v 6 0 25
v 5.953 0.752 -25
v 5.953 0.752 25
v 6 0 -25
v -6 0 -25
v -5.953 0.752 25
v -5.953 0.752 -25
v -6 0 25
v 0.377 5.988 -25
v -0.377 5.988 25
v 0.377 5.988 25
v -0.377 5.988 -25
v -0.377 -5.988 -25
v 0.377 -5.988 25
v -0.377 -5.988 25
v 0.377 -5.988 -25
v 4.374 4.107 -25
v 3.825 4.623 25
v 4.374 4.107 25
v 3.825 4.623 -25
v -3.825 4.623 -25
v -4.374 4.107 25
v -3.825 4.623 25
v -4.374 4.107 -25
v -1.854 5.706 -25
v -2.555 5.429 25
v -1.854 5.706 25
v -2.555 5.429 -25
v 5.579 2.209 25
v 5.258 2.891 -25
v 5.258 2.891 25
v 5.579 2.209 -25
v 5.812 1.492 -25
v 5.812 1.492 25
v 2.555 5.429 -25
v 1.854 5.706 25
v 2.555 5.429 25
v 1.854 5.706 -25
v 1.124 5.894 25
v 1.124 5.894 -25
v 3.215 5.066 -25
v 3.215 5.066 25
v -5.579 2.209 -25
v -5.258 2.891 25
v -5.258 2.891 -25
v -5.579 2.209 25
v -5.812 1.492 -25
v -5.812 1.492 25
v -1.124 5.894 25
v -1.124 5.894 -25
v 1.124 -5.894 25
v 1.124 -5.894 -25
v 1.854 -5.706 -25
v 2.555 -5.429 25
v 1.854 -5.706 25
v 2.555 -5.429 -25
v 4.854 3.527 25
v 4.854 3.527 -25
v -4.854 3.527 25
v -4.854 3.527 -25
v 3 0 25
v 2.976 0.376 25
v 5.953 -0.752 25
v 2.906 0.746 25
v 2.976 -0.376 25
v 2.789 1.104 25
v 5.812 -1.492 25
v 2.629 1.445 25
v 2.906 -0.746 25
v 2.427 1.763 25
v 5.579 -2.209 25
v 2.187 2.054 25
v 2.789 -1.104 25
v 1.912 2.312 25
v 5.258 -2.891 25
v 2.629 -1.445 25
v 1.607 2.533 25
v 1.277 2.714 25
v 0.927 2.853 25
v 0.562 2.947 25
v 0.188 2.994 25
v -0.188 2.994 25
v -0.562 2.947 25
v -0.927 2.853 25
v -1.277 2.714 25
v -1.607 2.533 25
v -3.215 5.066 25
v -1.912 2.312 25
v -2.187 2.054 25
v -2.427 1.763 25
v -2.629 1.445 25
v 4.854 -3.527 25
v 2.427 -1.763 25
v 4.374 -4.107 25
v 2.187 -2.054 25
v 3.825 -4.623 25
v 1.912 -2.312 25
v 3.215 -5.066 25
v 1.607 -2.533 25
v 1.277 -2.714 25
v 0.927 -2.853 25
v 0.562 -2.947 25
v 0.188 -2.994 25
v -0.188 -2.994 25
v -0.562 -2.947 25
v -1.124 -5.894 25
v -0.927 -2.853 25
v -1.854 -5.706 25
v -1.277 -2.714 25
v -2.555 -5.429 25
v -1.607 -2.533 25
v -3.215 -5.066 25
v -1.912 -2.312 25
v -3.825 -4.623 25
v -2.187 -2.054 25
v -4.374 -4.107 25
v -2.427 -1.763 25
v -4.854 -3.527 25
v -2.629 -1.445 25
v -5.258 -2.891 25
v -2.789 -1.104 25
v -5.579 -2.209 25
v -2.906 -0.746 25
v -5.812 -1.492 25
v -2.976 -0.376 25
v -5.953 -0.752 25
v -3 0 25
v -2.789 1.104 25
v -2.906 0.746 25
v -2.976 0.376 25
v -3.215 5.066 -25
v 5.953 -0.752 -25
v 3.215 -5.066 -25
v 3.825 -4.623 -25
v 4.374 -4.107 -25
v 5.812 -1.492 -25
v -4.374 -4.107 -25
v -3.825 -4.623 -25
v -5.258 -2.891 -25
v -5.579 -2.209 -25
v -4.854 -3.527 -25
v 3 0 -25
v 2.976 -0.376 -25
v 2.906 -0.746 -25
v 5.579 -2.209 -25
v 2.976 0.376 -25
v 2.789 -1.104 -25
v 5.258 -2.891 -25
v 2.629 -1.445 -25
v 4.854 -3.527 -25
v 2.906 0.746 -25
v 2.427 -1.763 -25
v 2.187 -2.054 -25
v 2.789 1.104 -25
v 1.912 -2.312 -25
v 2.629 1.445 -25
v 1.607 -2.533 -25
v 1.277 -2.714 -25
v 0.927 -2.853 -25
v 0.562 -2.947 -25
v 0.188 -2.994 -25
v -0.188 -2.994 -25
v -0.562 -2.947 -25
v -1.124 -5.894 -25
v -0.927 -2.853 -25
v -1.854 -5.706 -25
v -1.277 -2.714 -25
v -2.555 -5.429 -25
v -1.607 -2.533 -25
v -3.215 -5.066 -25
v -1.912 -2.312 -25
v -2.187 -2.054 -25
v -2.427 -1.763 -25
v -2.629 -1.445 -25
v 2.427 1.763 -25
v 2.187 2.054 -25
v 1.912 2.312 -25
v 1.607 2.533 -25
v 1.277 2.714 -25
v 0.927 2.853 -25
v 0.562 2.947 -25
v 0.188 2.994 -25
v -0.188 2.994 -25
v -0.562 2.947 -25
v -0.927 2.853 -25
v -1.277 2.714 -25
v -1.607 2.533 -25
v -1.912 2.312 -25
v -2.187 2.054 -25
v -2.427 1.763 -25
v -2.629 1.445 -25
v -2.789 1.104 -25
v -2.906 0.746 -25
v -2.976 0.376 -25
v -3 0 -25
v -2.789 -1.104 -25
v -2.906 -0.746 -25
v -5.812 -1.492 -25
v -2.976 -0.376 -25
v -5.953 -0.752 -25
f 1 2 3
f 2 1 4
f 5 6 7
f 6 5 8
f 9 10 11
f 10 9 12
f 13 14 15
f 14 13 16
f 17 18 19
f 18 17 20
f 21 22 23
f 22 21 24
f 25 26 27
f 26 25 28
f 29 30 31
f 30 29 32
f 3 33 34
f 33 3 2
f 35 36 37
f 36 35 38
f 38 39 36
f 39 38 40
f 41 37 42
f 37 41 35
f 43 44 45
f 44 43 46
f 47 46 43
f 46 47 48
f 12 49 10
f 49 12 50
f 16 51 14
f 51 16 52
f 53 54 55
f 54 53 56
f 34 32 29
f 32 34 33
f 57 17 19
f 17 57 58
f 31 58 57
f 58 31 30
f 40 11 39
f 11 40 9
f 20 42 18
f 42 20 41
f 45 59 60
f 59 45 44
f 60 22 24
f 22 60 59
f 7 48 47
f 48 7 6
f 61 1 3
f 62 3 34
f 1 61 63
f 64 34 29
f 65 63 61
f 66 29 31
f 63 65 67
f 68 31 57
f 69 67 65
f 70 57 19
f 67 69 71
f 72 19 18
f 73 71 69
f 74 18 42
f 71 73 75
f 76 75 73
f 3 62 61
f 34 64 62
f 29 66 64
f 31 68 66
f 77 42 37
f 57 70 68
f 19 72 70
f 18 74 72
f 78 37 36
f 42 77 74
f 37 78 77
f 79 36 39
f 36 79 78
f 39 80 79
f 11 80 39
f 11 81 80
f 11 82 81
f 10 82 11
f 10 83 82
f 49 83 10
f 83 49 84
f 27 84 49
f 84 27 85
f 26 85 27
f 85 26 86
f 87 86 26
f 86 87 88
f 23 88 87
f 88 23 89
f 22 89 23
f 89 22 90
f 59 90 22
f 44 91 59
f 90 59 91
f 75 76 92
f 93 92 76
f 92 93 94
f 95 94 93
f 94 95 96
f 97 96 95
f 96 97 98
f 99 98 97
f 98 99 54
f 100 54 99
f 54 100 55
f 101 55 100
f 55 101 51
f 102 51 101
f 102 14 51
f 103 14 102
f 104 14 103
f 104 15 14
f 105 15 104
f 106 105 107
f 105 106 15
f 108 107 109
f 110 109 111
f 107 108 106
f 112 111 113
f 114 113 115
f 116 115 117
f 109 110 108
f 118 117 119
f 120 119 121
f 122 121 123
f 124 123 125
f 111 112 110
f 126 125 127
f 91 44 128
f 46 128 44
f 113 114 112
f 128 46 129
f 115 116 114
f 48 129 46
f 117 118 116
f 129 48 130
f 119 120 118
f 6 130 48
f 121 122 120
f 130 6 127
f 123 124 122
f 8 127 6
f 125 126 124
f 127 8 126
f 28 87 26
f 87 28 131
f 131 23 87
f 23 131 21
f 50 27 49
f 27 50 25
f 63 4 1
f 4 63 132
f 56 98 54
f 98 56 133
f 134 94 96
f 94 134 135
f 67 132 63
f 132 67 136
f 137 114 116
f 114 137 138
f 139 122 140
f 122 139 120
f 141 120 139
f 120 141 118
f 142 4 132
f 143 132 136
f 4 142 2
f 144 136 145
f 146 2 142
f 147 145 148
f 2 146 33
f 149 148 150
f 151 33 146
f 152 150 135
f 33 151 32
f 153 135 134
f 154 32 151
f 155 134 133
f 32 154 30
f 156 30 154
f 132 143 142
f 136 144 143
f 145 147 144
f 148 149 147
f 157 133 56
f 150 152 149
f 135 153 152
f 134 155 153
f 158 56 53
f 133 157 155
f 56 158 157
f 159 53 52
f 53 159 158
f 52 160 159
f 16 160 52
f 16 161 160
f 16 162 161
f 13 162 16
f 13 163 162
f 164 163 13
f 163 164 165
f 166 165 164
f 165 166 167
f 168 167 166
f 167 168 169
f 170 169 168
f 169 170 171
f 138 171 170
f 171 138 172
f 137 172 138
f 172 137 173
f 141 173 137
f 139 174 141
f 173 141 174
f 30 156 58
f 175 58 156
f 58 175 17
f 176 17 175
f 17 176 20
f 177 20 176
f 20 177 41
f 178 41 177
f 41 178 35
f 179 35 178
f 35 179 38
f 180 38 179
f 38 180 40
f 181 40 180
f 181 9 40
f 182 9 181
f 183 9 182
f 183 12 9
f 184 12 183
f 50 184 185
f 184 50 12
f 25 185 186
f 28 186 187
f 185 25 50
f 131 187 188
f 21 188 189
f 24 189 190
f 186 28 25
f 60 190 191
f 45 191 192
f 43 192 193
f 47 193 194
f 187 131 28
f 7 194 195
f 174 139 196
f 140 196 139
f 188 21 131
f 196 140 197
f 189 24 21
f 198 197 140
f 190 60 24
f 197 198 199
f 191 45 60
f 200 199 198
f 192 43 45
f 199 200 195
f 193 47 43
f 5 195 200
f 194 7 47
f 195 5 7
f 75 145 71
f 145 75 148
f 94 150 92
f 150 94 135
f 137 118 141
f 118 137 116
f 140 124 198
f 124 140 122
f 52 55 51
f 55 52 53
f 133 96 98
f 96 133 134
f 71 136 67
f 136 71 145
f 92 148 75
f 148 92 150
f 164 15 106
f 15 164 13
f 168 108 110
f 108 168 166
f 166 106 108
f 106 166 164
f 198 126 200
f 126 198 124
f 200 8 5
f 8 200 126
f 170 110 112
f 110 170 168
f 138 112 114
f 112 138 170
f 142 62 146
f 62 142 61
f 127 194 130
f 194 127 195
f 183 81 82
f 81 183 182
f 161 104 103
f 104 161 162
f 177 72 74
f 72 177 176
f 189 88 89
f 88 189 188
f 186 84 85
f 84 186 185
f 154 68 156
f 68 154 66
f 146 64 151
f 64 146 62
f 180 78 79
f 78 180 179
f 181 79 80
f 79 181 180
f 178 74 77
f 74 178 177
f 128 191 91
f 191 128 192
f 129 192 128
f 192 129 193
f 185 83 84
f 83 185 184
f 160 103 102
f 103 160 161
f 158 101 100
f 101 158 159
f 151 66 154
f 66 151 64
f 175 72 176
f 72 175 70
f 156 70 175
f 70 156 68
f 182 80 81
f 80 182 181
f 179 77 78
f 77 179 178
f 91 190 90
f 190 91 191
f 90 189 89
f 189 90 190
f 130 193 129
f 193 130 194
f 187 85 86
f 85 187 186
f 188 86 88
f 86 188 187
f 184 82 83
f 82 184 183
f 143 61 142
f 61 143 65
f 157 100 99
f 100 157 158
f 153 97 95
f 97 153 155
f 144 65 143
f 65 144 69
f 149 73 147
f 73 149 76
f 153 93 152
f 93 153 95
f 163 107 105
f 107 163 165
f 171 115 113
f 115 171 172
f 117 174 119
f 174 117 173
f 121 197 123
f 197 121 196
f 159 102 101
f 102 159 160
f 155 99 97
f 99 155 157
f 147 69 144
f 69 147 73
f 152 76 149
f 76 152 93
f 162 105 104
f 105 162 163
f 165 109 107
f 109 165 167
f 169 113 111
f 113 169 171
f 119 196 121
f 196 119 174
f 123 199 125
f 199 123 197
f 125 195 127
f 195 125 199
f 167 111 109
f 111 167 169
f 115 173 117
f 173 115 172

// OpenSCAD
$fn = 50;


difference() {
	union() {
		translate(v = [0, 0, -25.0000000000]) {
			cylinder(h = 50, r = 6.0000000000);
		}
	}
	union() {
		translate(v = [0, 0, -100.0000000000]) {
			cylinder(h = 200, r = 3);
		}
	}
}
